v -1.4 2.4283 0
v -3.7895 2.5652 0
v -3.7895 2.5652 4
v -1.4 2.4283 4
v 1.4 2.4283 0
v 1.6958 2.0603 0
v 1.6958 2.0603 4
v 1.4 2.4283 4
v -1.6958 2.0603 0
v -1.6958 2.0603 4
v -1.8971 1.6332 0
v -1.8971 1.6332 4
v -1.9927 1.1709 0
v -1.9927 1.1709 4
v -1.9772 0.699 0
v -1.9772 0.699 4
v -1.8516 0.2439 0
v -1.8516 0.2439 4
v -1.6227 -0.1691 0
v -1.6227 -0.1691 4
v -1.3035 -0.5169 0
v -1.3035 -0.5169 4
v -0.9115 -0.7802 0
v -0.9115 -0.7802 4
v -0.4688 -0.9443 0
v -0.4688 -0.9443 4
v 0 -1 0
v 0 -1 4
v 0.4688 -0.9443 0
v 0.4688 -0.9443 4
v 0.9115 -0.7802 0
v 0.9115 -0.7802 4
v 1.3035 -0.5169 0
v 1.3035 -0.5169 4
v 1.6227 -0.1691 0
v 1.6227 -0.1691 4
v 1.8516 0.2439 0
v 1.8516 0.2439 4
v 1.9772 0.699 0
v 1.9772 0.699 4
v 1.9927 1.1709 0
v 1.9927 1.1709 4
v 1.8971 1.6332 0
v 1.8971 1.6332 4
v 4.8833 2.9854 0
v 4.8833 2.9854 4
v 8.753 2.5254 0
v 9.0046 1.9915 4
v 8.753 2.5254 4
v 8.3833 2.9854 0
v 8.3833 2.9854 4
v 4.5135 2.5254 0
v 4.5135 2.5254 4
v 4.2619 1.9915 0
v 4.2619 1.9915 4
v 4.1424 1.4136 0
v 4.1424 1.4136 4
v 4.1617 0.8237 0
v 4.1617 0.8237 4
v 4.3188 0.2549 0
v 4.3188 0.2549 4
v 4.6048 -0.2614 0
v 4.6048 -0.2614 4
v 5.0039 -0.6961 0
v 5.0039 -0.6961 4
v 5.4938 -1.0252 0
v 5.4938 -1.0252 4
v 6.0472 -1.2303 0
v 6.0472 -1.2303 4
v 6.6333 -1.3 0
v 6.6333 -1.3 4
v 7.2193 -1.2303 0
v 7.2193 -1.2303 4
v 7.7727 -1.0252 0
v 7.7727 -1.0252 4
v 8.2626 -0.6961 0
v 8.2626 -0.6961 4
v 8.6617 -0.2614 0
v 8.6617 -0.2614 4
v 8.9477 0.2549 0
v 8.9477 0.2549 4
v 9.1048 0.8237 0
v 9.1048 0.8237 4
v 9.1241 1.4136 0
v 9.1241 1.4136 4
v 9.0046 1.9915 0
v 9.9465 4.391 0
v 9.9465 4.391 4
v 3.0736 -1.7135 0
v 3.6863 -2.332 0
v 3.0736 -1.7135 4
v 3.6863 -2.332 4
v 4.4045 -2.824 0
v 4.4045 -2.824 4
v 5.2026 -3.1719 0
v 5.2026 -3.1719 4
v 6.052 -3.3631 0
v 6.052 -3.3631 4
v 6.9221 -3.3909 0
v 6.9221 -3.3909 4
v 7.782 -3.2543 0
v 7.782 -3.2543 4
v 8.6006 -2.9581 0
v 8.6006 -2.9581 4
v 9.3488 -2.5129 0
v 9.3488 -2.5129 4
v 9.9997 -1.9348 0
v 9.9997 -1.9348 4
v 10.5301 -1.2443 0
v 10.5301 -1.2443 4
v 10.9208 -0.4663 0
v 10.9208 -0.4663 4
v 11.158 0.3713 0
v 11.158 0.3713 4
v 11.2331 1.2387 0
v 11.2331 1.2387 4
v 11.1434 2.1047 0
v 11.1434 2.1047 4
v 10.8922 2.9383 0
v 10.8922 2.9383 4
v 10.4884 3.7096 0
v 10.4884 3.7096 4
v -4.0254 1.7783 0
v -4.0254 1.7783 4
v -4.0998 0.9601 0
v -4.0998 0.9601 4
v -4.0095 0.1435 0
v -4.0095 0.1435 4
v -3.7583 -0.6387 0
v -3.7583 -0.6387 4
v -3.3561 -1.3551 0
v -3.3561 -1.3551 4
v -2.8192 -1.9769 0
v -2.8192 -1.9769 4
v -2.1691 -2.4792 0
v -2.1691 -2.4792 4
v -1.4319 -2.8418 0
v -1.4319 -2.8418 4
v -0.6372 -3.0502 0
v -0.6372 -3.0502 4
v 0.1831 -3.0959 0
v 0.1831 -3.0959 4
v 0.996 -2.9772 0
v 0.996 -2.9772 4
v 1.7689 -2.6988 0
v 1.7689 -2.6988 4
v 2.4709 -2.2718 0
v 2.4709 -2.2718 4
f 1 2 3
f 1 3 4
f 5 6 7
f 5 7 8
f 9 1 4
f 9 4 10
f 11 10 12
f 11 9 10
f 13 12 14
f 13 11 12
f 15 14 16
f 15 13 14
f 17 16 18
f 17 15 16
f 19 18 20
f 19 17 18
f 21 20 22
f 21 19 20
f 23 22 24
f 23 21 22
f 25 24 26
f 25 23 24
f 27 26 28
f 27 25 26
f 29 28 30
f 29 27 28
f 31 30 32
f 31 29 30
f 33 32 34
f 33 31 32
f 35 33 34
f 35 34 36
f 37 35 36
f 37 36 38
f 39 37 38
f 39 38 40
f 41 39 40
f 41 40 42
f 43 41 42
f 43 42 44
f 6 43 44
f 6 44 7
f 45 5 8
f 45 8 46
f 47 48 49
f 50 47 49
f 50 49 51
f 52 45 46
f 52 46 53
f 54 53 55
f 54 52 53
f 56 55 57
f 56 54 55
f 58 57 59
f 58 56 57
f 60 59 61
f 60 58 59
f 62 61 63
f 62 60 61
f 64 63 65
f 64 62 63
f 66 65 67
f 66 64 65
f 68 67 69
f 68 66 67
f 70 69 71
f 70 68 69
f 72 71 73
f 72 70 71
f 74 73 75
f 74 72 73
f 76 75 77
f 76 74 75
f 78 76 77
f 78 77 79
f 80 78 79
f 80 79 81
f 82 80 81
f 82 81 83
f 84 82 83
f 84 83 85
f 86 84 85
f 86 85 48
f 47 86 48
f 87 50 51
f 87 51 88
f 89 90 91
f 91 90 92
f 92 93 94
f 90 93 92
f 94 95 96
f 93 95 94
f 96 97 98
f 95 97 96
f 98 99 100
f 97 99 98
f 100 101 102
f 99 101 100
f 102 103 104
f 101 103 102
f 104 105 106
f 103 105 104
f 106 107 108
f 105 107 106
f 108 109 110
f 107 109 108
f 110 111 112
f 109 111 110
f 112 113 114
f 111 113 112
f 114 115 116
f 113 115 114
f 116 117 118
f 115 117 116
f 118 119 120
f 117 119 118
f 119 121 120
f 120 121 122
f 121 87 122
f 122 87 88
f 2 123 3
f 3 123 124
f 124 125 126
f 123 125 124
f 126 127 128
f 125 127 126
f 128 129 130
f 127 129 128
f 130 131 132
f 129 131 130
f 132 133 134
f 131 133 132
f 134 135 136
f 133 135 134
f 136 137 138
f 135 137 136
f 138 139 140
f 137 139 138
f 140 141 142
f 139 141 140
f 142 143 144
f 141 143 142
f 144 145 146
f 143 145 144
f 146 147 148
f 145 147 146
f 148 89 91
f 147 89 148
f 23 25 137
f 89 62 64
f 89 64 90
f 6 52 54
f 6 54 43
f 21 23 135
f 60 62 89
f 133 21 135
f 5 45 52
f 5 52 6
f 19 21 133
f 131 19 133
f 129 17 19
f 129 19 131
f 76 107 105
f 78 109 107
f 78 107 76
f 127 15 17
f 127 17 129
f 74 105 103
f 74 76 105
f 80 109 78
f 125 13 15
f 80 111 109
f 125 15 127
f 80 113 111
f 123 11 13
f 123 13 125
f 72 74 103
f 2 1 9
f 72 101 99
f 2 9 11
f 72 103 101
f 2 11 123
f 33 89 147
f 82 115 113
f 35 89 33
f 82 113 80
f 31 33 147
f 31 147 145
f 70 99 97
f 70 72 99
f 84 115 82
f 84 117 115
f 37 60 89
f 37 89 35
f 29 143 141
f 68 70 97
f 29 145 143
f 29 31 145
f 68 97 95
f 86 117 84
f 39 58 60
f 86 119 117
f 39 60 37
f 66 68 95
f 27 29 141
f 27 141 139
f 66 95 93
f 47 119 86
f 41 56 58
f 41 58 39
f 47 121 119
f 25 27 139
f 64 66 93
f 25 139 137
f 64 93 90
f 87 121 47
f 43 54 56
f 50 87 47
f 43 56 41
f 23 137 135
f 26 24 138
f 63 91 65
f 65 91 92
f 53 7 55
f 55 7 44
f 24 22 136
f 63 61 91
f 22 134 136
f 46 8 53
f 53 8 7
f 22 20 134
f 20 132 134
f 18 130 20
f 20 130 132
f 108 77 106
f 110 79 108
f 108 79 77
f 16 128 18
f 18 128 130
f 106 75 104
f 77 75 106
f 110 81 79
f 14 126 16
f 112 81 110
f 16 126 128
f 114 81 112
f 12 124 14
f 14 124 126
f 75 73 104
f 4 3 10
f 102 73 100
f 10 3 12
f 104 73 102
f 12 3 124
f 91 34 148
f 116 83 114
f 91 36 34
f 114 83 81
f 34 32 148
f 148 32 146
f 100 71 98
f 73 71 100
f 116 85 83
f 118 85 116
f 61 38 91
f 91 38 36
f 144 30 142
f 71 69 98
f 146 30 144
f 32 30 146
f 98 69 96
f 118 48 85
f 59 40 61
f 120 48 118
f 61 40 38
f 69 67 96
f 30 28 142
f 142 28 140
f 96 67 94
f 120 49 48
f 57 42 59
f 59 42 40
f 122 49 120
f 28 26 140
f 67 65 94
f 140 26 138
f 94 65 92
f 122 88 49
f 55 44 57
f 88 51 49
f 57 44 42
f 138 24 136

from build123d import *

# Parameters (mm, degrees)
PAD_DEPTH = 4


with BuildPart() as part:
    # Sketch → Pad (new body)
    with BuildSketch(Plane.XY):
        with BuildLine():
            ThreePointArc((-1.4, 2.428286), (0, -1), (1.4, 2.428286))
            Line((1.4, 2.428286), (4.883254, 2.985357))
            ThreePointArc((4.883254, 2.985357), (6.633254, -1.3), (8.383254, 2.985357))
            Line((8.383254, 2.985357), (9.946507, 4.39098))
            ThreePointArc((3.073564, -1.713522), (9.687991, -2.23927), (9.946507, 4.39098))
            ThreePointArc((-3.789459, 2.565248), (-2.169123, -2.479211), (3.073564, -1.713522))
            Line((-3.789459, 2.565248), (-1.4, 2.428286))
        make_face()
    extrude(amount=PAD_DEPTH)


solid = part.part
